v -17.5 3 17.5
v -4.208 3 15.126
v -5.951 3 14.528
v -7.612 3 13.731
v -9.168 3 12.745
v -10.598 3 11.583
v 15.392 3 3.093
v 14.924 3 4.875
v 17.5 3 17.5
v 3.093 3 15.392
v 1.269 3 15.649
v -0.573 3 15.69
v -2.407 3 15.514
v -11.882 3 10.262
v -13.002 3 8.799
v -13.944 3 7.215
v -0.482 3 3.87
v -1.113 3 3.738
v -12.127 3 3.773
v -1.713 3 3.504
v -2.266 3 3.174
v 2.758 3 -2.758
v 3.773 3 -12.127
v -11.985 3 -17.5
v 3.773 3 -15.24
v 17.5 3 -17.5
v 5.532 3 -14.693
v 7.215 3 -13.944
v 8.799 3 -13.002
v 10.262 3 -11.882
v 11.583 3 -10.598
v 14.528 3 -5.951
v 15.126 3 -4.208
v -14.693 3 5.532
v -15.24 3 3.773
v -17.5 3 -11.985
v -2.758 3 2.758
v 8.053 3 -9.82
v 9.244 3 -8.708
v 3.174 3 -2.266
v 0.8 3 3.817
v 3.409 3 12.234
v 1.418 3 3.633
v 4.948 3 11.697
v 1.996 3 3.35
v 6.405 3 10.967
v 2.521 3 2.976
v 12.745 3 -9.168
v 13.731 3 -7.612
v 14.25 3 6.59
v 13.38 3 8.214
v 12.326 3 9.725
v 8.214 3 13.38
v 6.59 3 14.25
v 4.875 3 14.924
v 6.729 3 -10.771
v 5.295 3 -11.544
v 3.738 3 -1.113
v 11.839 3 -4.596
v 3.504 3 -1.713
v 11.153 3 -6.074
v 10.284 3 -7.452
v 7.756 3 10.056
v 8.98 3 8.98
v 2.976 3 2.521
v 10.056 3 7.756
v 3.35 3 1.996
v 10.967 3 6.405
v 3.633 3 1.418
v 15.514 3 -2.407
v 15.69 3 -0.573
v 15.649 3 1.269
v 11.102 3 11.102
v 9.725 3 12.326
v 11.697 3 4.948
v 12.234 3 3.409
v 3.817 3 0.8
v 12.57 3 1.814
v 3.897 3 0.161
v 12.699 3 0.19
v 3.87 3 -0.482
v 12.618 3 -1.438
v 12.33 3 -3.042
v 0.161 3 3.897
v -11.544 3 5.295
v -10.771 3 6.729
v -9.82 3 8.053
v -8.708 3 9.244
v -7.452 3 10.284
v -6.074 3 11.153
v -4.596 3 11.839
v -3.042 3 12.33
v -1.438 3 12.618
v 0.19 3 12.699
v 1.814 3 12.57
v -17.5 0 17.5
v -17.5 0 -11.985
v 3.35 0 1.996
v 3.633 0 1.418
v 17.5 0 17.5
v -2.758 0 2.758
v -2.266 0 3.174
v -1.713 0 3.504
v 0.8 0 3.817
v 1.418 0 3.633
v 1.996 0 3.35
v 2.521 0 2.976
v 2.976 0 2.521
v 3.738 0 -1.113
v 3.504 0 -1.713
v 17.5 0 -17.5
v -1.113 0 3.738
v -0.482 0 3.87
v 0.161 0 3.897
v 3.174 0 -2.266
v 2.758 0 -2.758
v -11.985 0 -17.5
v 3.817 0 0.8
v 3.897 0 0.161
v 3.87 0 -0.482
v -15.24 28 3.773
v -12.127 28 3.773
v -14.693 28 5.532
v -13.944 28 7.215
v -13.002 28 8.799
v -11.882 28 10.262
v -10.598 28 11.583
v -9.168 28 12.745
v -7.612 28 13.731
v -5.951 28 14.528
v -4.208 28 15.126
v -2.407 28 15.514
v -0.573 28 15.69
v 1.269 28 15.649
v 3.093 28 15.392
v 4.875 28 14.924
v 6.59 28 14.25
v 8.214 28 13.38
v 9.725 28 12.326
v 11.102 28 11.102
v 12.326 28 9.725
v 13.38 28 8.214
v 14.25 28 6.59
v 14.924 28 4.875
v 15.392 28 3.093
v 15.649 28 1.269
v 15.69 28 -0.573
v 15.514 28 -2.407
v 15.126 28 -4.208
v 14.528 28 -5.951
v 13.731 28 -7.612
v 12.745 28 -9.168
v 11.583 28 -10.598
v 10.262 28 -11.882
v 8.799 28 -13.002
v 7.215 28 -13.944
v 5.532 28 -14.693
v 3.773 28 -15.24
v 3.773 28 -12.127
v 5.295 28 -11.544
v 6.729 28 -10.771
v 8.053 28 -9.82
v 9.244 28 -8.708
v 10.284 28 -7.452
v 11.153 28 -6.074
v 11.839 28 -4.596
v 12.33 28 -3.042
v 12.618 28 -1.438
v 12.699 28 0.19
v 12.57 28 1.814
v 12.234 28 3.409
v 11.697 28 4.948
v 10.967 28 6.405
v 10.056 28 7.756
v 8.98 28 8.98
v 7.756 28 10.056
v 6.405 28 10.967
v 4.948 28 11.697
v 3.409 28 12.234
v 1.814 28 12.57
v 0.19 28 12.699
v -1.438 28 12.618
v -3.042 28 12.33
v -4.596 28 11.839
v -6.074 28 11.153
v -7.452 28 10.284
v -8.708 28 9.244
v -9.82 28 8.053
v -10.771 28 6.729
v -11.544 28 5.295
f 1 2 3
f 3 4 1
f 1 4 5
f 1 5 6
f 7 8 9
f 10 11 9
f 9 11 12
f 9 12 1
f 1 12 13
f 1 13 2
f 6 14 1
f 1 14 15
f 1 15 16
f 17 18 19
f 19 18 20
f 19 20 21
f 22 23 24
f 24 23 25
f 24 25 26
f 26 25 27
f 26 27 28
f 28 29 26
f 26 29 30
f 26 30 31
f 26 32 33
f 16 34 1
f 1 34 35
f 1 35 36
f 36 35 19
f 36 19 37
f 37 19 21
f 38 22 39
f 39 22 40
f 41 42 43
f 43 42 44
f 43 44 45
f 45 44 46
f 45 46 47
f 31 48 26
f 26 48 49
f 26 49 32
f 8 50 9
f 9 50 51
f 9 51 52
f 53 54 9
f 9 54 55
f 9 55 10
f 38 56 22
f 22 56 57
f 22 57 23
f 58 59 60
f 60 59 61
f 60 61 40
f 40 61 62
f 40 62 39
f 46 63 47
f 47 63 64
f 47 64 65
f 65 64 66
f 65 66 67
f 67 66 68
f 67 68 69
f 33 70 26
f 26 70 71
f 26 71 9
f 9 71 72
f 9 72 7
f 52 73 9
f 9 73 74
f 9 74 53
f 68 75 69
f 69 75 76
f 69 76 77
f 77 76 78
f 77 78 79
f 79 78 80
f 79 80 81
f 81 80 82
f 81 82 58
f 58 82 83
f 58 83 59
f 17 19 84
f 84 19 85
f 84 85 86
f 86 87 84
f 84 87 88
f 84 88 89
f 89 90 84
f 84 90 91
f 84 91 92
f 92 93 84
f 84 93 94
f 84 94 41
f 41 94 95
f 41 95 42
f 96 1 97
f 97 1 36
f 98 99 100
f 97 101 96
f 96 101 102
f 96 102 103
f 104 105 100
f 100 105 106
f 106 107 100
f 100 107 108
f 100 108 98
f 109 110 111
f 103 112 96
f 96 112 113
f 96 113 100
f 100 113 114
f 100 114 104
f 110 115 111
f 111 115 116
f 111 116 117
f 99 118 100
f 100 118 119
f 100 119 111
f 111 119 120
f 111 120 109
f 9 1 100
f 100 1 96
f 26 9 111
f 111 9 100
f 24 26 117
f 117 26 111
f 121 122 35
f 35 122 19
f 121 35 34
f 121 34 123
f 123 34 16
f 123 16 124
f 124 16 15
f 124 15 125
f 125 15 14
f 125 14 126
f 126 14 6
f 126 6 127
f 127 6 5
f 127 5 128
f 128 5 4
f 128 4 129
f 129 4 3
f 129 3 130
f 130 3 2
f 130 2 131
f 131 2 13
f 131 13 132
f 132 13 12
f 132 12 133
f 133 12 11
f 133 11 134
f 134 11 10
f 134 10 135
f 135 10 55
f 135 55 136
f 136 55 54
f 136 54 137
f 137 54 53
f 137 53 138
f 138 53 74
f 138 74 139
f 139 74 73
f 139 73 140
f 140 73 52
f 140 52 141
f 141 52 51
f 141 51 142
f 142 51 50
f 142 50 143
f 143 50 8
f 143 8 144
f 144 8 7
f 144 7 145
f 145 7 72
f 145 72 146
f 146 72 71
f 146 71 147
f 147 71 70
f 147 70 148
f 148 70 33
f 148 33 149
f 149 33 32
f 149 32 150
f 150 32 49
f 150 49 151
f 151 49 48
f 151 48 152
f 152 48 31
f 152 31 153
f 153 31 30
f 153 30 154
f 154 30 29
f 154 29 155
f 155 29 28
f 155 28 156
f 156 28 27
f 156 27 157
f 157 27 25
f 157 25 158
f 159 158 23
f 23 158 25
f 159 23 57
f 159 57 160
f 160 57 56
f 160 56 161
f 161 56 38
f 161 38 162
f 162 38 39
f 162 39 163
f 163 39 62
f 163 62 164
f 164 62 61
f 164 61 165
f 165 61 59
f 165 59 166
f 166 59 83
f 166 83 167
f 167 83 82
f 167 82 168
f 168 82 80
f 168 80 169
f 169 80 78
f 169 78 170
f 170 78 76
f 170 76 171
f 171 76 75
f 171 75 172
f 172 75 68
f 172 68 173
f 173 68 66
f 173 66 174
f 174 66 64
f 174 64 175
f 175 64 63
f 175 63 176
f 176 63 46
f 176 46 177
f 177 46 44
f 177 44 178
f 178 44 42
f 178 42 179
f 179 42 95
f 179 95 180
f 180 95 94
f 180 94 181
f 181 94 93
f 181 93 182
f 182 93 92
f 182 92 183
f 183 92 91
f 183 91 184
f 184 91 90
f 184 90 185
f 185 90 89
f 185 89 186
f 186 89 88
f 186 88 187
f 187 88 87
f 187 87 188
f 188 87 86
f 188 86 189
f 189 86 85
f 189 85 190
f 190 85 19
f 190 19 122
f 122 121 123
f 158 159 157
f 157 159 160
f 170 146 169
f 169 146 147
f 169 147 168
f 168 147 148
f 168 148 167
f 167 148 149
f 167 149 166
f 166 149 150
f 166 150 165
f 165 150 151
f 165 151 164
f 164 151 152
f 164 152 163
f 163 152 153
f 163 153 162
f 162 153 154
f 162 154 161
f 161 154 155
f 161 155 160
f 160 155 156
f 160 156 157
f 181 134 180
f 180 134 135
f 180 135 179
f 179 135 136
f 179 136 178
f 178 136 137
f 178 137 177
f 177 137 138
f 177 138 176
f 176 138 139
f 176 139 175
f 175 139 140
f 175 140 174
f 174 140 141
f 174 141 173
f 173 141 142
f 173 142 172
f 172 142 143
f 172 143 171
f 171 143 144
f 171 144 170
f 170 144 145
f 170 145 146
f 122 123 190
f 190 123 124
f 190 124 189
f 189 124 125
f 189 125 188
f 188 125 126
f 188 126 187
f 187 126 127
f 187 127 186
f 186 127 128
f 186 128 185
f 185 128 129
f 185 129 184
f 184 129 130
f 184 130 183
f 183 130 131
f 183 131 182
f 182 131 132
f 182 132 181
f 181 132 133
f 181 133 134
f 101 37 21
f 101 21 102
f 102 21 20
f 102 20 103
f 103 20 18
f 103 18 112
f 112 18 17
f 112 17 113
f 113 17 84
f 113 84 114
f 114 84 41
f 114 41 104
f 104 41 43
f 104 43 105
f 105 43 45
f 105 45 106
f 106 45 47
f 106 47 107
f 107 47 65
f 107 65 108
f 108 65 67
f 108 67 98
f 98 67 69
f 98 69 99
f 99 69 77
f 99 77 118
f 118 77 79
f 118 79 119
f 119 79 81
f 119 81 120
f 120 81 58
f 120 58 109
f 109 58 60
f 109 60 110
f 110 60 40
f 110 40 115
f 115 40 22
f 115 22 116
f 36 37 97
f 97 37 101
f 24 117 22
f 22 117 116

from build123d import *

# Parameters (mm, degrees)
SKETCH1_W           = 35
SKETCH1_H           = 35
BOSS_EXTRUDE1_DEPTH = 3
BOSS_EXTRUDE2_DEPTH = 25
CUT_EXTRUDE1_REACH  = 37.178


with BuildPart() as part:
    # Sketch1 → Boss-Extrude1 (new body)
    with BuildSketch(Plane(origin=(0, 0, 0), x_dir=(1, 0, 0), z_dir=(0, 1, 0))):
        Rectangle(SKETCH1_W, SKETCH1_H)
    extrude(amount=BOSS_EXTRUDE1_DEPTH)

    # Sketch2 → Boss-Extrude2 (add)
    with BuildSketch(Plane(origin=(0, 3, 0), x_dir=(1, 0, 0), z_dir=(0, 1, 0))):
        with BuildLine():
            Line((3.77290479, 12.126631414), (3.77290479, 15.239920913))
            ThreePointArc((3.77290479, 15.239920913), (11.101576465, -11.101576465), (-15.239920913, -3.77290479))
            Line((-15.239920913, -3.77290479), (-12.126631414, -3.77290479))
            ThreePointArc((-12.126631414, -3.77290479), (8.980256121, -8.980256121), (3.77290479, 12.126631414))
        make_face()
    extrude(amount=BOSS_EXTRUDE2_DEPTH)

    # Sketch3 → Cut-Extrude1 (cut, up to next)
    with BuildSketch(Plane(origin=(0, 3, 0), x_dir=(1, 0, 0), z_dir=(0, 1, 0)), mode=Mode.PRIVATE) as cut_extrude1_sk1:
        with BuildLine():
            Line((2.757716447, 2.757716447), (-11.984567107, 17.5))
            Line((-11.984567107, 17.5), (-17.5, 17.5))
            Line((-17.5, 17.5), (-17.5, 11.984567107))
            Line((-17.5, 11.984567107), (-2.757716447, -2.757716447))
            ThreePointArc((-2.757716447, -2.757716447), (2.757716447, -2.757716447), (2.757716447, 2.757716447))
        make_face()
    cut_extrude1_tool1 = extrude(cut_extrude1_sk1.sketch, amount=-CUT_EXTRUDE1_REACH, mode=Mode.PRIVATE) & part.part
    add(cut_extrude1_tool1.solids().sort_by_distance((-6.984587, 3, -6.984587))[0], mode=Mode.SUBTRACT)


solid = part.part
